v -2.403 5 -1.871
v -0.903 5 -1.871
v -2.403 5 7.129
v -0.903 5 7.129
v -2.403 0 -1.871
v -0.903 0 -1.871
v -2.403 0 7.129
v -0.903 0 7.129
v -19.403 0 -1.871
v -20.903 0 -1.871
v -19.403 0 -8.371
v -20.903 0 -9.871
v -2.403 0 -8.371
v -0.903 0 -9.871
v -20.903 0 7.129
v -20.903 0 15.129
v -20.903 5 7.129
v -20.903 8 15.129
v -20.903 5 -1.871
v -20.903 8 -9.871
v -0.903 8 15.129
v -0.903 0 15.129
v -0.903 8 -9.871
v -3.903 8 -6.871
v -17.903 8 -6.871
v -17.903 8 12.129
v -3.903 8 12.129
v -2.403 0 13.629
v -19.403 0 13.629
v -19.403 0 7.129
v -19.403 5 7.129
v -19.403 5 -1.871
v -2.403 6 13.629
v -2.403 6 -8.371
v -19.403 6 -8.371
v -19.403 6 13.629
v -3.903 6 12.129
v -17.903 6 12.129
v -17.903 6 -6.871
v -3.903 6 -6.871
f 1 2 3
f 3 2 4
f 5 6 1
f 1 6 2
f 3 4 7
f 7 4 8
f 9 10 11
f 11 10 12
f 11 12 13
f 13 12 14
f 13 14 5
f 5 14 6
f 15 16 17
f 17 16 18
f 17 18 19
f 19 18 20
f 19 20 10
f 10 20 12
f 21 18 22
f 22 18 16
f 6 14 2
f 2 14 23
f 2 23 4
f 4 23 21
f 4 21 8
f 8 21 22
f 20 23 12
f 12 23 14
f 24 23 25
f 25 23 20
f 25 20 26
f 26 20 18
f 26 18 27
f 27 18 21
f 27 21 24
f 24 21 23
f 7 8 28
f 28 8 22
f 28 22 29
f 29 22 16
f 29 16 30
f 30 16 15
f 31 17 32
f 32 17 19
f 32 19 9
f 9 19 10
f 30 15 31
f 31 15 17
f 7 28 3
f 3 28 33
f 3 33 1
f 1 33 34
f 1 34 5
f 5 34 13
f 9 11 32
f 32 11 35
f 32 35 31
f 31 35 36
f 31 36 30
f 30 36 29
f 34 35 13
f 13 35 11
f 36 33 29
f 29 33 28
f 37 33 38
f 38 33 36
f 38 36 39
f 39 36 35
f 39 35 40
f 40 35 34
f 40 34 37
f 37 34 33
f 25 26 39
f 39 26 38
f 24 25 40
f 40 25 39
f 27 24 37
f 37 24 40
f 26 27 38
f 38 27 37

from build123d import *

# Parameters (mm, degrees)
SKETCH1_W           = 20
SKETCH1_H           = 25
BOSS_EXTRUDE1_DEPTH = 8
SKETCH2_W           = 9
SKETCH2_H           = 5
CUT_EXTRUDE1_DEPTH  = 31
SKETCH3_W           = 17
SKETCH3_H           = 22
CUT_EXTRUDE2_DEPTH  = 6
SKETCH4_W           = 14
SKETCH4_H           = 19
CUT_EXTRUDE3_DEPTH  = 7


with BuildPart() as part:
    # Sketch1 → Boss-Extrude1 (new body)
    with BuildSketch(Plane(origin=(0, 0, 0), x_dir=(1, 0, 0), z_dir=(0, 1, 0))):
        with Locations((-10.903225806, -2.629032258)):
            Rectangle(SKETCH1_W, SKETCH1_H)
    extrude(amount=BOSS_EXTRUDE1_DEPTH)

    # Sketch2 → Cut-Extrude1 (cut)
    with BuildSketch(Plane.ZY.offset(20.903225806)):
        with Locations((2.629032258, 2.5)):
            Rectangle(SKETCH2_W, SKETCH2_H)
    extrude(amount=-CUT_EXTRUDE1_DEPTH, mode=Mode.SUBTRACT)

    # Sketch3 → Cut-Extrude2 (cut)
    with BuildSketch(Plane.XZ):
        with Locations((-10.903225806, 2.629032258)):
            Rectangle(SKETCH3_W, SKETCH3_H)
    extrude(amount=-CUT_EXTRUDE2_DEPTH, mode=Mode.SUBTRACT)

    # Sketch4 → Cut-Extrude3 (cut)
    with BuildSketch(Plane(origin=(0, 8, 0), x_dir=(1, 0, 0), z_dir=(0, 1, 0))):
        with Locations((-10.903225806, -2.629032258)):
            Rectangle(SKETCH4_W, SKETCH4_H)
    extrude(amount=-CUT_EXTRUDE3_DEPTH, mode=Mode.SUBTRACT)


solid = part.part
